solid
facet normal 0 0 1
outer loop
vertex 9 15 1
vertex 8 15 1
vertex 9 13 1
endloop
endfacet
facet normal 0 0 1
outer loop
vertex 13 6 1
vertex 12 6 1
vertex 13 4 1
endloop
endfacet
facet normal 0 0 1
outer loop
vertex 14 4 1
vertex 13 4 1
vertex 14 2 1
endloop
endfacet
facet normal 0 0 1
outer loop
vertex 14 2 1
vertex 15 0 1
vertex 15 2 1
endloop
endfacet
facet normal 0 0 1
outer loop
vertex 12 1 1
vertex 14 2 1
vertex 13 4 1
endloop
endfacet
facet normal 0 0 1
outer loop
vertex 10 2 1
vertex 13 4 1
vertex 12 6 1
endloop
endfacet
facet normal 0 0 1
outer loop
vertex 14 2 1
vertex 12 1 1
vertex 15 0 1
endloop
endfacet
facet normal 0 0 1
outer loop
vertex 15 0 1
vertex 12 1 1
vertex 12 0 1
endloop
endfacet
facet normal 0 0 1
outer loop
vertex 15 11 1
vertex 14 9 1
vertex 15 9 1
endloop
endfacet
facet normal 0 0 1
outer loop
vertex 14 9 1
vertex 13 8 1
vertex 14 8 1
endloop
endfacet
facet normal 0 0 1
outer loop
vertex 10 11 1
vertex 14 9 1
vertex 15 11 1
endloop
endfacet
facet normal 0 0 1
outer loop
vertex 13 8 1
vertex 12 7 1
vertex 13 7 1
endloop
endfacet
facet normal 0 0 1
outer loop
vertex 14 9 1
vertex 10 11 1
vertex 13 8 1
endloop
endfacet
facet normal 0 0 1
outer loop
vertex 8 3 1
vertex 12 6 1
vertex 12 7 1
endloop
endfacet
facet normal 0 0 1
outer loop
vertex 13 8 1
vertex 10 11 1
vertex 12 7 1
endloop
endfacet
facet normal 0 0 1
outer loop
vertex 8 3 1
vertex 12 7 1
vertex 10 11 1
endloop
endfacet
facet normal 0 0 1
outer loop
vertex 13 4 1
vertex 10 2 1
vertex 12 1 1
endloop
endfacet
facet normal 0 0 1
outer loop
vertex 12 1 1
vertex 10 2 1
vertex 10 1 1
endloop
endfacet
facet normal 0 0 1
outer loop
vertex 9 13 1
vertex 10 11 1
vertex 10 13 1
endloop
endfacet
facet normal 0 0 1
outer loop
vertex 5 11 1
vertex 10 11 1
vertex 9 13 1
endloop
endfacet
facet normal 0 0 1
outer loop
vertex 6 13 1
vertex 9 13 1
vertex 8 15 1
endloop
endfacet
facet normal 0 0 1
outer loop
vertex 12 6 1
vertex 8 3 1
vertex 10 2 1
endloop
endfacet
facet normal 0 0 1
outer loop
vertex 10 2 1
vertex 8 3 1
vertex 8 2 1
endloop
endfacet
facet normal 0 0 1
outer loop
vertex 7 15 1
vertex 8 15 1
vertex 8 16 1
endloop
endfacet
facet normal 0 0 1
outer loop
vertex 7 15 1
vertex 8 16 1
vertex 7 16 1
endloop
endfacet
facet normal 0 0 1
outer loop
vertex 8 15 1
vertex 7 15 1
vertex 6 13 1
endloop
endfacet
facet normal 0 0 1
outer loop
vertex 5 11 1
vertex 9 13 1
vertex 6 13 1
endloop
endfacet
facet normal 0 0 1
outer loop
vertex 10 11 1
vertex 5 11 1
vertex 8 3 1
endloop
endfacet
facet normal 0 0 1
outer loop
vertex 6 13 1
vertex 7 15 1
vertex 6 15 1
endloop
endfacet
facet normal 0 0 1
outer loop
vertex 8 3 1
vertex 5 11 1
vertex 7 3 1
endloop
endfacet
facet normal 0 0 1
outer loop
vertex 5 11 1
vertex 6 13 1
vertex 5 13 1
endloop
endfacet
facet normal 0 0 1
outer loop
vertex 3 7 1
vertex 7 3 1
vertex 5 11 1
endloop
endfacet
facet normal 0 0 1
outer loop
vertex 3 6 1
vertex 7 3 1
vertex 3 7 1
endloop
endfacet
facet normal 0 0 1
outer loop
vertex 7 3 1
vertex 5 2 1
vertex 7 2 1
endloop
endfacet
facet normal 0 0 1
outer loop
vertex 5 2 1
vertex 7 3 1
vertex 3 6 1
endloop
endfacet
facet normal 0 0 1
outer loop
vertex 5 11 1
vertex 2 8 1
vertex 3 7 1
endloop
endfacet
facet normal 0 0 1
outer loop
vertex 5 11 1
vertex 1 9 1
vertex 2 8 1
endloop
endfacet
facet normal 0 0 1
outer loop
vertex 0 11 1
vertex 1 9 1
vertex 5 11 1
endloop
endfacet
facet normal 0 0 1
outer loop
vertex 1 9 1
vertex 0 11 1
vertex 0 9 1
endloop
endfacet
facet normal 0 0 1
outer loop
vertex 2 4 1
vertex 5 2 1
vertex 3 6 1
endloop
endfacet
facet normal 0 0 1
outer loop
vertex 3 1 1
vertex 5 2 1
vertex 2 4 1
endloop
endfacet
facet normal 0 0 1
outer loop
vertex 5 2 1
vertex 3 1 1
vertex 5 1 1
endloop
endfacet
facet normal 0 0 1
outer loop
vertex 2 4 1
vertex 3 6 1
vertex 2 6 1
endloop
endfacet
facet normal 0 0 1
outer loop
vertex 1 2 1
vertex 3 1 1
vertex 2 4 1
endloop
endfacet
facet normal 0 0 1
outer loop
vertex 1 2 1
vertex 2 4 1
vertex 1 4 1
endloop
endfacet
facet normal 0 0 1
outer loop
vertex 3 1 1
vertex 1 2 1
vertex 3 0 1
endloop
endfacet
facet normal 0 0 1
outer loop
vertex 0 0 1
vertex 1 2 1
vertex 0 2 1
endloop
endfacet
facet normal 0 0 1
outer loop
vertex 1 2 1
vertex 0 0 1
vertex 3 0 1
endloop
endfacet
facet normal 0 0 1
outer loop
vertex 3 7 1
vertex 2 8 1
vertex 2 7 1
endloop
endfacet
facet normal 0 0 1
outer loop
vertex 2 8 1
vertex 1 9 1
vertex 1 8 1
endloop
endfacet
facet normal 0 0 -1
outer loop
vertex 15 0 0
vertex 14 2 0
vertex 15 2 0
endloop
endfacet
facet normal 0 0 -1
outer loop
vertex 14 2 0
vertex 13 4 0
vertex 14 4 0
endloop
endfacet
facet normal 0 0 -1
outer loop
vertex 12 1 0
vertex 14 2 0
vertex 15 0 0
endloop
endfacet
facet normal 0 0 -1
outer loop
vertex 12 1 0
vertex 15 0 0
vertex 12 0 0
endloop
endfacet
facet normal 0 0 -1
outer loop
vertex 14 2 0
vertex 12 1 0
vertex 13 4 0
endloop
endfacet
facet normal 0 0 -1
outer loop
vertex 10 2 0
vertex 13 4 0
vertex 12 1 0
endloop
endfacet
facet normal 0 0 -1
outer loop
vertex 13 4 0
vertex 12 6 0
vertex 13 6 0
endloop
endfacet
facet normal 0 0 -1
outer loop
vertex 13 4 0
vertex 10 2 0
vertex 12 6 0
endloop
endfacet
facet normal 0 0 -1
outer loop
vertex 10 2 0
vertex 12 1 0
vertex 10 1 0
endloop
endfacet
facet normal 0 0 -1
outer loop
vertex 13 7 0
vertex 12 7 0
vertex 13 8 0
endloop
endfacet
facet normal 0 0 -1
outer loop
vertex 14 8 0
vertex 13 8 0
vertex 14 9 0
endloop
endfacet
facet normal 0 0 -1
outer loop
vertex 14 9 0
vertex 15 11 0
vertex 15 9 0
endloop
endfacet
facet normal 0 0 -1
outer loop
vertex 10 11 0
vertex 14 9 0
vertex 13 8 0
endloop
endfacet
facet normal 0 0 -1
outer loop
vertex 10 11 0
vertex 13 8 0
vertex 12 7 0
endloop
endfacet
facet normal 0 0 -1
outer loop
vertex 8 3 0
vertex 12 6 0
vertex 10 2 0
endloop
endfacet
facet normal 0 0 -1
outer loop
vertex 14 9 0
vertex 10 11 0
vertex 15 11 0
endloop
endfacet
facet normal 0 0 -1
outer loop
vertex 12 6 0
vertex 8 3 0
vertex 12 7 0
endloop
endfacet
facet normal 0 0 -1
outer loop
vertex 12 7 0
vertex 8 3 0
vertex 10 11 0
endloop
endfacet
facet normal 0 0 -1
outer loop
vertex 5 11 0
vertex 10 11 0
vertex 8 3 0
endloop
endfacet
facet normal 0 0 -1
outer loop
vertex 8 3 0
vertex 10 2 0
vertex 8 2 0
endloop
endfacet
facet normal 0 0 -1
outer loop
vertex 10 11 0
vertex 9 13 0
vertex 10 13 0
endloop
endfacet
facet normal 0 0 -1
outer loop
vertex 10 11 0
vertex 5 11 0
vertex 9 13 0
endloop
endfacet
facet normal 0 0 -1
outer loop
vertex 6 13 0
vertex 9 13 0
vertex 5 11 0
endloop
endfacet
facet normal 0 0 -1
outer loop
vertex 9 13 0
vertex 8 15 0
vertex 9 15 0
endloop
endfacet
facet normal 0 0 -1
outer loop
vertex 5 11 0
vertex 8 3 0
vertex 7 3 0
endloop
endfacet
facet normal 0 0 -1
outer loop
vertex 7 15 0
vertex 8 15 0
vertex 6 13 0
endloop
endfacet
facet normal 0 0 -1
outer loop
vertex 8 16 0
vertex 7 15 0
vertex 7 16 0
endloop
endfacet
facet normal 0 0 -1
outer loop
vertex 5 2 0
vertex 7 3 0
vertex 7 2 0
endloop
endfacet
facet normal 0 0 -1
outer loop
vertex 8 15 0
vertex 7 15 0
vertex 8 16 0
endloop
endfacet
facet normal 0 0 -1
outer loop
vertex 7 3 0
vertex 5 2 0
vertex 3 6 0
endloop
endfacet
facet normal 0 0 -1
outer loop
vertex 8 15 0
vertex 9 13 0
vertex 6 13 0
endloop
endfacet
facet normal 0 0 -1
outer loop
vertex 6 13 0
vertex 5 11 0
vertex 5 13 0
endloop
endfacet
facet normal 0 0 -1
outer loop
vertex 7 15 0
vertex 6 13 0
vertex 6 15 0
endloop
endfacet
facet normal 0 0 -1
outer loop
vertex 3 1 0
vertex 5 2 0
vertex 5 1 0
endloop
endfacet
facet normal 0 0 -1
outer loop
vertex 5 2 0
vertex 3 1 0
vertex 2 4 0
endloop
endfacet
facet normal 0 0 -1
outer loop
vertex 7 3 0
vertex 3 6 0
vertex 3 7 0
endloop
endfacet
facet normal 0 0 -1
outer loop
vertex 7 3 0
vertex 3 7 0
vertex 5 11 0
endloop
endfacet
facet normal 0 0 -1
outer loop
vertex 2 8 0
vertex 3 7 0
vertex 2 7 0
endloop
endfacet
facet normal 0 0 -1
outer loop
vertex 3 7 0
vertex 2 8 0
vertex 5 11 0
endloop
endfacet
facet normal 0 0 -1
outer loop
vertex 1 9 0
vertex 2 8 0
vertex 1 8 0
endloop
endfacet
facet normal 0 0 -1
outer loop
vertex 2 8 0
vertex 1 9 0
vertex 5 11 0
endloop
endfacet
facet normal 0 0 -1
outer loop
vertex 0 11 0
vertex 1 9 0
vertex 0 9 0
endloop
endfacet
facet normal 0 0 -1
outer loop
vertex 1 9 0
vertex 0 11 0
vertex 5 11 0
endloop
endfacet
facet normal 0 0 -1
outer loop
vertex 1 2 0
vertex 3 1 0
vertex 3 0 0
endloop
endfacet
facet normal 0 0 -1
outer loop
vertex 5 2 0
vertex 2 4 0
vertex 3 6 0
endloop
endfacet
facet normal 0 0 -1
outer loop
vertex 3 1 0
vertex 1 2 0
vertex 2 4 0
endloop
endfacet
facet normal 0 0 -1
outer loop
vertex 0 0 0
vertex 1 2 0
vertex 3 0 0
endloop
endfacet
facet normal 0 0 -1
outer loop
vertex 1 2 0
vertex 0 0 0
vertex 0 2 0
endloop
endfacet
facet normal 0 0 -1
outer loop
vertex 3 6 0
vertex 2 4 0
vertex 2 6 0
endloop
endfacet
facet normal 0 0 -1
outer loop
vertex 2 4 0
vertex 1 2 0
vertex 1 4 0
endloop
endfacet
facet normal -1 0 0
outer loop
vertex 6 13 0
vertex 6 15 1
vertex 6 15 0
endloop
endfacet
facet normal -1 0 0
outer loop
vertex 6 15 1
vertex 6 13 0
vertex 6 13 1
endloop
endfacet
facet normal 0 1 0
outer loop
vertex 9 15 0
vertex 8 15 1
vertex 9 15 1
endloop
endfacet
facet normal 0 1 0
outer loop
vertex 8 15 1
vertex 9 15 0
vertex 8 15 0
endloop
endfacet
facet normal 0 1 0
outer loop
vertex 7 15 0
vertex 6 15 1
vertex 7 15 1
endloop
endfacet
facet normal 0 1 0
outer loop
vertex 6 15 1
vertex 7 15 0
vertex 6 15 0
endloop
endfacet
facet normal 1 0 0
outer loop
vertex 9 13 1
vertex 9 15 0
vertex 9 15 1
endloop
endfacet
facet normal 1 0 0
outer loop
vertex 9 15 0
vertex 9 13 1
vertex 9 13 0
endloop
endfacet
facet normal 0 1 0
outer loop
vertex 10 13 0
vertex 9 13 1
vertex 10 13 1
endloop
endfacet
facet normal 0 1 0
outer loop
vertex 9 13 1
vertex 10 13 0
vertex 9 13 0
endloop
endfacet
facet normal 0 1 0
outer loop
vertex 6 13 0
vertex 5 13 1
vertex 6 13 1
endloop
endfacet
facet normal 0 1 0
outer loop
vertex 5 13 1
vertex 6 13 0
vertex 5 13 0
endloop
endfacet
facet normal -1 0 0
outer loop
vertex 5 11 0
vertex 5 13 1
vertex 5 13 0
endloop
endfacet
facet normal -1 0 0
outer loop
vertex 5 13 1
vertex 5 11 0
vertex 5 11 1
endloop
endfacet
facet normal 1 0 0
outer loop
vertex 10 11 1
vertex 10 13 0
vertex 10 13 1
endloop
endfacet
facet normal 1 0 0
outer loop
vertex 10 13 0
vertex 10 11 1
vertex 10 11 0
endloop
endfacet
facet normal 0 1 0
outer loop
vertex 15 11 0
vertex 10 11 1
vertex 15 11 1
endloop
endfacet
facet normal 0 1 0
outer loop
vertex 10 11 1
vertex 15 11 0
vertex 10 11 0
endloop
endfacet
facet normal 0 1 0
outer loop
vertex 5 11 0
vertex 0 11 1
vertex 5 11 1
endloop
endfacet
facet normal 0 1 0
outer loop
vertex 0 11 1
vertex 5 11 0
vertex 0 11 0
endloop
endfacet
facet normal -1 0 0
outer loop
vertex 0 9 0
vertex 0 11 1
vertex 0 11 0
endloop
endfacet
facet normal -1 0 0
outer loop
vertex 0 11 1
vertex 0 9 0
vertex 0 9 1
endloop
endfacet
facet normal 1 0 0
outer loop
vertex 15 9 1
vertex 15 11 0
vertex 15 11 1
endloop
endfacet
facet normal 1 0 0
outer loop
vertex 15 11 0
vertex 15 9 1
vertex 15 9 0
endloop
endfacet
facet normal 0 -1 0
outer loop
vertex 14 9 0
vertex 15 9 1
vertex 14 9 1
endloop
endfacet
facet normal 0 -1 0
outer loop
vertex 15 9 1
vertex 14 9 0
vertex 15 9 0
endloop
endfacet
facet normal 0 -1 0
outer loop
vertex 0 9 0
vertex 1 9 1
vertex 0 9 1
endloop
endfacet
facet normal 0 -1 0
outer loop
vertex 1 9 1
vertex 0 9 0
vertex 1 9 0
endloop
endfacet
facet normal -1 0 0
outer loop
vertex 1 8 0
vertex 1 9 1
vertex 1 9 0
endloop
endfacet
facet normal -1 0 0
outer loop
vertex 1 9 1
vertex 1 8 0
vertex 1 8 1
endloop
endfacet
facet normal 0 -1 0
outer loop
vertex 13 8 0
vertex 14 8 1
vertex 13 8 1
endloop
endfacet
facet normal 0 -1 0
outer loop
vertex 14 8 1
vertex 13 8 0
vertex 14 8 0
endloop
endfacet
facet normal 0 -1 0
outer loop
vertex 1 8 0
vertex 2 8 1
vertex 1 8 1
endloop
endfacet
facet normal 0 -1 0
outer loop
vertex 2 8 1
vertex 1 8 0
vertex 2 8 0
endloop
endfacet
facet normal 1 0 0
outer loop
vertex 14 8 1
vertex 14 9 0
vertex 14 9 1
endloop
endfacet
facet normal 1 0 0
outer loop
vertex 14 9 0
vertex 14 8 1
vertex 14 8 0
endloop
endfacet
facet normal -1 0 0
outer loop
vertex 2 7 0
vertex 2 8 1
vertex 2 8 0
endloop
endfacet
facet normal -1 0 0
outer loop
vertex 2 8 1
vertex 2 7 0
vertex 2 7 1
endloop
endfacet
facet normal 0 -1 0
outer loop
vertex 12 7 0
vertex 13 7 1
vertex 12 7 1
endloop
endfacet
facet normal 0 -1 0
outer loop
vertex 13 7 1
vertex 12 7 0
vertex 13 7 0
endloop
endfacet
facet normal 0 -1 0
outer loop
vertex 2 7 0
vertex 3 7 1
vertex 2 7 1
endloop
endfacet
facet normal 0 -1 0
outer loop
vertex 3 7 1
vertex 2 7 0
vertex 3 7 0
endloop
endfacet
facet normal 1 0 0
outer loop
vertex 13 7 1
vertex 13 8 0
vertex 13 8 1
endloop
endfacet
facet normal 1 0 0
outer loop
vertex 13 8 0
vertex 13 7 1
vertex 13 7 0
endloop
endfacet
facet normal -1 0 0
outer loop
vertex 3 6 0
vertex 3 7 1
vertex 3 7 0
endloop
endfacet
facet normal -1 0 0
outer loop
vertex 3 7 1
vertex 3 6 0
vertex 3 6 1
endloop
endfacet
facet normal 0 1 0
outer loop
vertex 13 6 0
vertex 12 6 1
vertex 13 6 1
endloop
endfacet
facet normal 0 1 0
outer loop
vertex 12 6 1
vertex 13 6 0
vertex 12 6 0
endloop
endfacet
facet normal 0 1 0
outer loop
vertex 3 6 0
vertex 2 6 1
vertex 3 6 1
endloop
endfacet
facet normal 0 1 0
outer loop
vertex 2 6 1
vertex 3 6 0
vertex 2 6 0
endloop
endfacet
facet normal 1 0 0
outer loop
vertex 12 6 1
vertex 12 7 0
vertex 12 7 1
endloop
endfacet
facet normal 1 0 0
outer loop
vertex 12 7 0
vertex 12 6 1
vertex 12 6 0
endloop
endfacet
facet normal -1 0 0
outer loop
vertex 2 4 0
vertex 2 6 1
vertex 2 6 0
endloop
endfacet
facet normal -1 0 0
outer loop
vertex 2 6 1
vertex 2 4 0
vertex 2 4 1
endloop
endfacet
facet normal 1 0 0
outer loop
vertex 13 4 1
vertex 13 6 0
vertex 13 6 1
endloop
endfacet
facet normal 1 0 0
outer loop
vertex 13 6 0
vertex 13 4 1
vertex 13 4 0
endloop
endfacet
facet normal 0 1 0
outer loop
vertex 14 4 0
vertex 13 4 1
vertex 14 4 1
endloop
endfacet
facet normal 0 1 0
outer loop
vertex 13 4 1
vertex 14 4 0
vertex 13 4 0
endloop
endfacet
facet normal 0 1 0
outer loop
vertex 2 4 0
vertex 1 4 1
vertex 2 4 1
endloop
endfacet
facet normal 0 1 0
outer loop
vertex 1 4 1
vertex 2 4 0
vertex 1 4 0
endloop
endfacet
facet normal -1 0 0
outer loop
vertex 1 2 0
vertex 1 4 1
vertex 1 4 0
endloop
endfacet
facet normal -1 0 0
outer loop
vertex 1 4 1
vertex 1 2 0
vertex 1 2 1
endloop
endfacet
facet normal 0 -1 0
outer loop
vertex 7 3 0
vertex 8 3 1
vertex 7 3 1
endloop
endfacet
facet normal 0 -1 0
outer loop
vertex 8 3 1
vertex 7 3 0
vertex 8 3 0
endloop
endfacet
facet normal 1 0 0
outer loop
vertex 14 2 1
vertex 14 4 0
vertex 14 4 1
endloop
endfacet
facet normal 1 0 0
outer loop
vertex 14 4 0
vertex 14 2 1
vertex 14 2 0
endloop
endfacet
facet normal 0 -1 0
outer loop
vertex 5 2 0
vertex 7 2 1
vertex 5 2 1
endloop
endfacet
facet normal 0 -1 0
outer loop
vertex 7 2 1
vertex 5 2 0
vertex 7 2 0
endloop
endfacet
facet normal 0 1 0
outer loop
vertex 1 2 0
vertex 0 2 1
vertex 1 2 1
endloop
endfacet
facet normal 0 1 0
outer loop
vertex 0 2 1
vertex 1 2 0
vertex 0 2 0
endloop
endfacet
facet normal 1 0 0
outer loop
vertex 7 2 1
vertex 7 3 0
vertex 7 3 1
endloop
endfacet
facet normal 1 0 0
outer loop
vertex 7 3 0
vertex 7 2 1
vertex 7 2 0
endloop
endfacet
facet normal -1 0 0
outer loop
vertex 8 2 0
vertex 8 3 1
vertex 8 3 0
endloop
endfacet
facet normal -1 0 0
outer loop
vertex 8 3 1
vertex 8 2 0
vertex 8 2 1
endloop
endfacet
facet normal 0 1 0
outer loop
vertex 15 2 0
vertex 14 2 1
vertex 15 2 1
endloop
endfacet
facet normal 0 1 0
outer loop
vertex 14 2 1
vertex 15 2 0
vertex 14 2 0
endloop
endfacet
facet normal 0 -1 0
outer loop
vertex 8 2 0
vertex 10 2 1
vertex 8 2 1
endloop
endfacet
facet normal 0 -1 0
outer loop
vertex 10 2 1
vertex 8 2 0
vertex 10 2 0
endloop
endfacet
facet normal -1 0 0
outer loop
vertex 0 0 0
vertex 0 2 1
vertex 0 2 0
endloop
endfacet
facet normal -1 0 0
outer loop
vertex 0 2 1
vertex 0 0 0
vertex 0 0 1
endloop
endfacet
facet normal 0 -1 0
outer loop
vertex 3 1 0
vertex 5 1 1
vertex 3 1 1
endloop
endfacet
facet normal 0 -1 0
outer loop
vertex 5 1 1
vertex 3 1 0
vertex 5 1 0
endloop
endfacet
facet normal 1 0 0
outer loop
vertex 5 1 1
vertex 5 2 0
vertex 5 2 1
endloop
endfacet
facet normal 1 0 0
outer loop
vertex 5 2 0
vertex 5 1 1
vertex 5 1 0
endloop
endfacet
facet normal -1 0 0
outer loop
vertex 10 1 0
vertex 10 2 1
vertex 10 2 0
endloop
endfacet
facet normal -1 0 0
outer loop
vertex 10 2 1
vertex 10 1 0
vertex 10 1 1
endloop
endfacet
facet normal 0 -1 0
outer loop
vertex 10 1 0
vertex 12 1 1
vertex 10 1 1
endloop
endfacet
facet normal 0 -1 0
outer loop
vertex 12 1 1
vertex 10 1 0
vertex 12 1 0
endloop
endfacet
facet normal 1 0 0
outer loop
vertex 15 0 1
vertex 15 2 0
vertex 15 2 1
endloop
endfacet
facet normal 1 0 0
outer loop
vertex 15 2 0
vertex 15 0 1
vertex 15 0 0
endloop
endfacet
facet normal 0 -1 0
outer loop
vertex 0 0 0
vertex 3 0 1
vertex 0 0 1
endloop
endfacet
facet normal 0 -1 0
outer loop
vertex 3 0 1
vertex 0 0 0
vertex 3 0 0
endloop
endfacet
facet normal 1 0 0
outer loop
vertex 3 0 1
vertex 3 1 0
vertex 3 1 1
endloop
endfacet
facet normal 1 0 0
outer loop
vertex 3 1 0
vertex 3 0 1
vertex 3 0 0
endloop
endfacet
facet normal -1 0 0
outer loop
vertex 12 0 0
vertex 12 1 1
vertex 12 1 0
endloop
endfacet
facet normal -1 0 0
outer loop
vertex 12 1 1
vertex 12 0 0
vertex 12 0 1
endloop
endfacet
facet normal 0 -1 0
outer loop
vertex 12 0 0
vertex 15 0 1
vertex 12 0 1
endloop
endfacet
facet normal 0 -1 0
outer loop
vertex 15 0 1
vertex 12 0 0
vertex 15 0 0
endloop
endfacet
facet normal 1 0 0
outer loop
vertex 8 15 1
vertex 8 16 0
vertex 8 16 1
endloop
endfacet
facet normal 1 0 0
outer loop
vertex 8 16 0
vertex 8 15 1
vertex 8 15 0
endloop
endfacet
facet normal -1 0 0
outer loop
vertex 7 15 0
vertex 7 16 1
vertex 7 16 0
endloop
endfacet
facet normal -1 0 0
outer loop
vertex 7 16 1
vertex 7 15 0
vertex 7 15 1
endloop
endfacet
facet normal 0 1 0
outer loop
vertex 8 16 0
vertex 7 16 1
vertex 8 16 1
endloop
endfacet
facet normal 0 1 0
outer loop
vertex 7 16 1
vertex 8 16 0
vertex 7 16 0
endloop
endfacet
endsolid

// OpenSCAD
/*
 * 3D Pixel Art - Starman 1
 * Copyright (c) 2019 Anar Software LLC. < http://anars.com >
 *
 * This program is free software: you can redistribute it and/or modify it under
 * the terms of the GNU General Public License as published by the Free Software
 * Foundation, either version 3 of the License, or (at your option) any later
 * version.
 *
 * This program is distributed in the hope that it will be useful, but WITHOUT
 * ANY WARRANTY; without even the implied warranty of MERCHANTABILITY or FITNESS
 * FOR A PARTICULAR PURPOSE. See the GNU General Public License for more details.
 *
 * You should have received a copy of the GNU General Public License along with
 * this program. If not, see < http://www.gnu.org/licenses/ >
 *
 */

/* [Global] */

/* [Pixel Settings] */

// Pixel Length (X)
pixel_length = 1;

// Pixel Width (Y)
pixel_width = 1;

// Pixel Height (Z)
pixel_height = 1;

/* [Hidden] */

data=[[
     "       X",
     "      XXX",
     "      XXX",
     "     XXXXX",
     "     XXXXX",
     "XXXXXXXXXXXXXXX",
     "XXXXXXXXXXXXXXX",
     " XXXXXXXXXXXXX",
     "  XXXXXXXXXXX",
     "   XXXXXXXXX",
     "  XXXXXXXXXXX",
     "  XXXXXXXXXXX",
     " XXXXXXXXXXXXX",
     " XXXXXX XXXXXX",
     "XXXXX     XXXXX",
     "XXX         XXX"]];

for (z = [0 : len(data) - 1])
    for (y = [0 : len(data[z]) - 1])
        if (len(data[z][y]) > 0)
            for (x = [0 : len(data[z][y]) - 1])
                if (data[z][y][x] == "X")
                    translate([x * pixel_length, (len(data[z]) - 1 - y) * pixel_width, z * pixel_height])
                        cube([pixel_length, pixel_width, pixel_height]);
